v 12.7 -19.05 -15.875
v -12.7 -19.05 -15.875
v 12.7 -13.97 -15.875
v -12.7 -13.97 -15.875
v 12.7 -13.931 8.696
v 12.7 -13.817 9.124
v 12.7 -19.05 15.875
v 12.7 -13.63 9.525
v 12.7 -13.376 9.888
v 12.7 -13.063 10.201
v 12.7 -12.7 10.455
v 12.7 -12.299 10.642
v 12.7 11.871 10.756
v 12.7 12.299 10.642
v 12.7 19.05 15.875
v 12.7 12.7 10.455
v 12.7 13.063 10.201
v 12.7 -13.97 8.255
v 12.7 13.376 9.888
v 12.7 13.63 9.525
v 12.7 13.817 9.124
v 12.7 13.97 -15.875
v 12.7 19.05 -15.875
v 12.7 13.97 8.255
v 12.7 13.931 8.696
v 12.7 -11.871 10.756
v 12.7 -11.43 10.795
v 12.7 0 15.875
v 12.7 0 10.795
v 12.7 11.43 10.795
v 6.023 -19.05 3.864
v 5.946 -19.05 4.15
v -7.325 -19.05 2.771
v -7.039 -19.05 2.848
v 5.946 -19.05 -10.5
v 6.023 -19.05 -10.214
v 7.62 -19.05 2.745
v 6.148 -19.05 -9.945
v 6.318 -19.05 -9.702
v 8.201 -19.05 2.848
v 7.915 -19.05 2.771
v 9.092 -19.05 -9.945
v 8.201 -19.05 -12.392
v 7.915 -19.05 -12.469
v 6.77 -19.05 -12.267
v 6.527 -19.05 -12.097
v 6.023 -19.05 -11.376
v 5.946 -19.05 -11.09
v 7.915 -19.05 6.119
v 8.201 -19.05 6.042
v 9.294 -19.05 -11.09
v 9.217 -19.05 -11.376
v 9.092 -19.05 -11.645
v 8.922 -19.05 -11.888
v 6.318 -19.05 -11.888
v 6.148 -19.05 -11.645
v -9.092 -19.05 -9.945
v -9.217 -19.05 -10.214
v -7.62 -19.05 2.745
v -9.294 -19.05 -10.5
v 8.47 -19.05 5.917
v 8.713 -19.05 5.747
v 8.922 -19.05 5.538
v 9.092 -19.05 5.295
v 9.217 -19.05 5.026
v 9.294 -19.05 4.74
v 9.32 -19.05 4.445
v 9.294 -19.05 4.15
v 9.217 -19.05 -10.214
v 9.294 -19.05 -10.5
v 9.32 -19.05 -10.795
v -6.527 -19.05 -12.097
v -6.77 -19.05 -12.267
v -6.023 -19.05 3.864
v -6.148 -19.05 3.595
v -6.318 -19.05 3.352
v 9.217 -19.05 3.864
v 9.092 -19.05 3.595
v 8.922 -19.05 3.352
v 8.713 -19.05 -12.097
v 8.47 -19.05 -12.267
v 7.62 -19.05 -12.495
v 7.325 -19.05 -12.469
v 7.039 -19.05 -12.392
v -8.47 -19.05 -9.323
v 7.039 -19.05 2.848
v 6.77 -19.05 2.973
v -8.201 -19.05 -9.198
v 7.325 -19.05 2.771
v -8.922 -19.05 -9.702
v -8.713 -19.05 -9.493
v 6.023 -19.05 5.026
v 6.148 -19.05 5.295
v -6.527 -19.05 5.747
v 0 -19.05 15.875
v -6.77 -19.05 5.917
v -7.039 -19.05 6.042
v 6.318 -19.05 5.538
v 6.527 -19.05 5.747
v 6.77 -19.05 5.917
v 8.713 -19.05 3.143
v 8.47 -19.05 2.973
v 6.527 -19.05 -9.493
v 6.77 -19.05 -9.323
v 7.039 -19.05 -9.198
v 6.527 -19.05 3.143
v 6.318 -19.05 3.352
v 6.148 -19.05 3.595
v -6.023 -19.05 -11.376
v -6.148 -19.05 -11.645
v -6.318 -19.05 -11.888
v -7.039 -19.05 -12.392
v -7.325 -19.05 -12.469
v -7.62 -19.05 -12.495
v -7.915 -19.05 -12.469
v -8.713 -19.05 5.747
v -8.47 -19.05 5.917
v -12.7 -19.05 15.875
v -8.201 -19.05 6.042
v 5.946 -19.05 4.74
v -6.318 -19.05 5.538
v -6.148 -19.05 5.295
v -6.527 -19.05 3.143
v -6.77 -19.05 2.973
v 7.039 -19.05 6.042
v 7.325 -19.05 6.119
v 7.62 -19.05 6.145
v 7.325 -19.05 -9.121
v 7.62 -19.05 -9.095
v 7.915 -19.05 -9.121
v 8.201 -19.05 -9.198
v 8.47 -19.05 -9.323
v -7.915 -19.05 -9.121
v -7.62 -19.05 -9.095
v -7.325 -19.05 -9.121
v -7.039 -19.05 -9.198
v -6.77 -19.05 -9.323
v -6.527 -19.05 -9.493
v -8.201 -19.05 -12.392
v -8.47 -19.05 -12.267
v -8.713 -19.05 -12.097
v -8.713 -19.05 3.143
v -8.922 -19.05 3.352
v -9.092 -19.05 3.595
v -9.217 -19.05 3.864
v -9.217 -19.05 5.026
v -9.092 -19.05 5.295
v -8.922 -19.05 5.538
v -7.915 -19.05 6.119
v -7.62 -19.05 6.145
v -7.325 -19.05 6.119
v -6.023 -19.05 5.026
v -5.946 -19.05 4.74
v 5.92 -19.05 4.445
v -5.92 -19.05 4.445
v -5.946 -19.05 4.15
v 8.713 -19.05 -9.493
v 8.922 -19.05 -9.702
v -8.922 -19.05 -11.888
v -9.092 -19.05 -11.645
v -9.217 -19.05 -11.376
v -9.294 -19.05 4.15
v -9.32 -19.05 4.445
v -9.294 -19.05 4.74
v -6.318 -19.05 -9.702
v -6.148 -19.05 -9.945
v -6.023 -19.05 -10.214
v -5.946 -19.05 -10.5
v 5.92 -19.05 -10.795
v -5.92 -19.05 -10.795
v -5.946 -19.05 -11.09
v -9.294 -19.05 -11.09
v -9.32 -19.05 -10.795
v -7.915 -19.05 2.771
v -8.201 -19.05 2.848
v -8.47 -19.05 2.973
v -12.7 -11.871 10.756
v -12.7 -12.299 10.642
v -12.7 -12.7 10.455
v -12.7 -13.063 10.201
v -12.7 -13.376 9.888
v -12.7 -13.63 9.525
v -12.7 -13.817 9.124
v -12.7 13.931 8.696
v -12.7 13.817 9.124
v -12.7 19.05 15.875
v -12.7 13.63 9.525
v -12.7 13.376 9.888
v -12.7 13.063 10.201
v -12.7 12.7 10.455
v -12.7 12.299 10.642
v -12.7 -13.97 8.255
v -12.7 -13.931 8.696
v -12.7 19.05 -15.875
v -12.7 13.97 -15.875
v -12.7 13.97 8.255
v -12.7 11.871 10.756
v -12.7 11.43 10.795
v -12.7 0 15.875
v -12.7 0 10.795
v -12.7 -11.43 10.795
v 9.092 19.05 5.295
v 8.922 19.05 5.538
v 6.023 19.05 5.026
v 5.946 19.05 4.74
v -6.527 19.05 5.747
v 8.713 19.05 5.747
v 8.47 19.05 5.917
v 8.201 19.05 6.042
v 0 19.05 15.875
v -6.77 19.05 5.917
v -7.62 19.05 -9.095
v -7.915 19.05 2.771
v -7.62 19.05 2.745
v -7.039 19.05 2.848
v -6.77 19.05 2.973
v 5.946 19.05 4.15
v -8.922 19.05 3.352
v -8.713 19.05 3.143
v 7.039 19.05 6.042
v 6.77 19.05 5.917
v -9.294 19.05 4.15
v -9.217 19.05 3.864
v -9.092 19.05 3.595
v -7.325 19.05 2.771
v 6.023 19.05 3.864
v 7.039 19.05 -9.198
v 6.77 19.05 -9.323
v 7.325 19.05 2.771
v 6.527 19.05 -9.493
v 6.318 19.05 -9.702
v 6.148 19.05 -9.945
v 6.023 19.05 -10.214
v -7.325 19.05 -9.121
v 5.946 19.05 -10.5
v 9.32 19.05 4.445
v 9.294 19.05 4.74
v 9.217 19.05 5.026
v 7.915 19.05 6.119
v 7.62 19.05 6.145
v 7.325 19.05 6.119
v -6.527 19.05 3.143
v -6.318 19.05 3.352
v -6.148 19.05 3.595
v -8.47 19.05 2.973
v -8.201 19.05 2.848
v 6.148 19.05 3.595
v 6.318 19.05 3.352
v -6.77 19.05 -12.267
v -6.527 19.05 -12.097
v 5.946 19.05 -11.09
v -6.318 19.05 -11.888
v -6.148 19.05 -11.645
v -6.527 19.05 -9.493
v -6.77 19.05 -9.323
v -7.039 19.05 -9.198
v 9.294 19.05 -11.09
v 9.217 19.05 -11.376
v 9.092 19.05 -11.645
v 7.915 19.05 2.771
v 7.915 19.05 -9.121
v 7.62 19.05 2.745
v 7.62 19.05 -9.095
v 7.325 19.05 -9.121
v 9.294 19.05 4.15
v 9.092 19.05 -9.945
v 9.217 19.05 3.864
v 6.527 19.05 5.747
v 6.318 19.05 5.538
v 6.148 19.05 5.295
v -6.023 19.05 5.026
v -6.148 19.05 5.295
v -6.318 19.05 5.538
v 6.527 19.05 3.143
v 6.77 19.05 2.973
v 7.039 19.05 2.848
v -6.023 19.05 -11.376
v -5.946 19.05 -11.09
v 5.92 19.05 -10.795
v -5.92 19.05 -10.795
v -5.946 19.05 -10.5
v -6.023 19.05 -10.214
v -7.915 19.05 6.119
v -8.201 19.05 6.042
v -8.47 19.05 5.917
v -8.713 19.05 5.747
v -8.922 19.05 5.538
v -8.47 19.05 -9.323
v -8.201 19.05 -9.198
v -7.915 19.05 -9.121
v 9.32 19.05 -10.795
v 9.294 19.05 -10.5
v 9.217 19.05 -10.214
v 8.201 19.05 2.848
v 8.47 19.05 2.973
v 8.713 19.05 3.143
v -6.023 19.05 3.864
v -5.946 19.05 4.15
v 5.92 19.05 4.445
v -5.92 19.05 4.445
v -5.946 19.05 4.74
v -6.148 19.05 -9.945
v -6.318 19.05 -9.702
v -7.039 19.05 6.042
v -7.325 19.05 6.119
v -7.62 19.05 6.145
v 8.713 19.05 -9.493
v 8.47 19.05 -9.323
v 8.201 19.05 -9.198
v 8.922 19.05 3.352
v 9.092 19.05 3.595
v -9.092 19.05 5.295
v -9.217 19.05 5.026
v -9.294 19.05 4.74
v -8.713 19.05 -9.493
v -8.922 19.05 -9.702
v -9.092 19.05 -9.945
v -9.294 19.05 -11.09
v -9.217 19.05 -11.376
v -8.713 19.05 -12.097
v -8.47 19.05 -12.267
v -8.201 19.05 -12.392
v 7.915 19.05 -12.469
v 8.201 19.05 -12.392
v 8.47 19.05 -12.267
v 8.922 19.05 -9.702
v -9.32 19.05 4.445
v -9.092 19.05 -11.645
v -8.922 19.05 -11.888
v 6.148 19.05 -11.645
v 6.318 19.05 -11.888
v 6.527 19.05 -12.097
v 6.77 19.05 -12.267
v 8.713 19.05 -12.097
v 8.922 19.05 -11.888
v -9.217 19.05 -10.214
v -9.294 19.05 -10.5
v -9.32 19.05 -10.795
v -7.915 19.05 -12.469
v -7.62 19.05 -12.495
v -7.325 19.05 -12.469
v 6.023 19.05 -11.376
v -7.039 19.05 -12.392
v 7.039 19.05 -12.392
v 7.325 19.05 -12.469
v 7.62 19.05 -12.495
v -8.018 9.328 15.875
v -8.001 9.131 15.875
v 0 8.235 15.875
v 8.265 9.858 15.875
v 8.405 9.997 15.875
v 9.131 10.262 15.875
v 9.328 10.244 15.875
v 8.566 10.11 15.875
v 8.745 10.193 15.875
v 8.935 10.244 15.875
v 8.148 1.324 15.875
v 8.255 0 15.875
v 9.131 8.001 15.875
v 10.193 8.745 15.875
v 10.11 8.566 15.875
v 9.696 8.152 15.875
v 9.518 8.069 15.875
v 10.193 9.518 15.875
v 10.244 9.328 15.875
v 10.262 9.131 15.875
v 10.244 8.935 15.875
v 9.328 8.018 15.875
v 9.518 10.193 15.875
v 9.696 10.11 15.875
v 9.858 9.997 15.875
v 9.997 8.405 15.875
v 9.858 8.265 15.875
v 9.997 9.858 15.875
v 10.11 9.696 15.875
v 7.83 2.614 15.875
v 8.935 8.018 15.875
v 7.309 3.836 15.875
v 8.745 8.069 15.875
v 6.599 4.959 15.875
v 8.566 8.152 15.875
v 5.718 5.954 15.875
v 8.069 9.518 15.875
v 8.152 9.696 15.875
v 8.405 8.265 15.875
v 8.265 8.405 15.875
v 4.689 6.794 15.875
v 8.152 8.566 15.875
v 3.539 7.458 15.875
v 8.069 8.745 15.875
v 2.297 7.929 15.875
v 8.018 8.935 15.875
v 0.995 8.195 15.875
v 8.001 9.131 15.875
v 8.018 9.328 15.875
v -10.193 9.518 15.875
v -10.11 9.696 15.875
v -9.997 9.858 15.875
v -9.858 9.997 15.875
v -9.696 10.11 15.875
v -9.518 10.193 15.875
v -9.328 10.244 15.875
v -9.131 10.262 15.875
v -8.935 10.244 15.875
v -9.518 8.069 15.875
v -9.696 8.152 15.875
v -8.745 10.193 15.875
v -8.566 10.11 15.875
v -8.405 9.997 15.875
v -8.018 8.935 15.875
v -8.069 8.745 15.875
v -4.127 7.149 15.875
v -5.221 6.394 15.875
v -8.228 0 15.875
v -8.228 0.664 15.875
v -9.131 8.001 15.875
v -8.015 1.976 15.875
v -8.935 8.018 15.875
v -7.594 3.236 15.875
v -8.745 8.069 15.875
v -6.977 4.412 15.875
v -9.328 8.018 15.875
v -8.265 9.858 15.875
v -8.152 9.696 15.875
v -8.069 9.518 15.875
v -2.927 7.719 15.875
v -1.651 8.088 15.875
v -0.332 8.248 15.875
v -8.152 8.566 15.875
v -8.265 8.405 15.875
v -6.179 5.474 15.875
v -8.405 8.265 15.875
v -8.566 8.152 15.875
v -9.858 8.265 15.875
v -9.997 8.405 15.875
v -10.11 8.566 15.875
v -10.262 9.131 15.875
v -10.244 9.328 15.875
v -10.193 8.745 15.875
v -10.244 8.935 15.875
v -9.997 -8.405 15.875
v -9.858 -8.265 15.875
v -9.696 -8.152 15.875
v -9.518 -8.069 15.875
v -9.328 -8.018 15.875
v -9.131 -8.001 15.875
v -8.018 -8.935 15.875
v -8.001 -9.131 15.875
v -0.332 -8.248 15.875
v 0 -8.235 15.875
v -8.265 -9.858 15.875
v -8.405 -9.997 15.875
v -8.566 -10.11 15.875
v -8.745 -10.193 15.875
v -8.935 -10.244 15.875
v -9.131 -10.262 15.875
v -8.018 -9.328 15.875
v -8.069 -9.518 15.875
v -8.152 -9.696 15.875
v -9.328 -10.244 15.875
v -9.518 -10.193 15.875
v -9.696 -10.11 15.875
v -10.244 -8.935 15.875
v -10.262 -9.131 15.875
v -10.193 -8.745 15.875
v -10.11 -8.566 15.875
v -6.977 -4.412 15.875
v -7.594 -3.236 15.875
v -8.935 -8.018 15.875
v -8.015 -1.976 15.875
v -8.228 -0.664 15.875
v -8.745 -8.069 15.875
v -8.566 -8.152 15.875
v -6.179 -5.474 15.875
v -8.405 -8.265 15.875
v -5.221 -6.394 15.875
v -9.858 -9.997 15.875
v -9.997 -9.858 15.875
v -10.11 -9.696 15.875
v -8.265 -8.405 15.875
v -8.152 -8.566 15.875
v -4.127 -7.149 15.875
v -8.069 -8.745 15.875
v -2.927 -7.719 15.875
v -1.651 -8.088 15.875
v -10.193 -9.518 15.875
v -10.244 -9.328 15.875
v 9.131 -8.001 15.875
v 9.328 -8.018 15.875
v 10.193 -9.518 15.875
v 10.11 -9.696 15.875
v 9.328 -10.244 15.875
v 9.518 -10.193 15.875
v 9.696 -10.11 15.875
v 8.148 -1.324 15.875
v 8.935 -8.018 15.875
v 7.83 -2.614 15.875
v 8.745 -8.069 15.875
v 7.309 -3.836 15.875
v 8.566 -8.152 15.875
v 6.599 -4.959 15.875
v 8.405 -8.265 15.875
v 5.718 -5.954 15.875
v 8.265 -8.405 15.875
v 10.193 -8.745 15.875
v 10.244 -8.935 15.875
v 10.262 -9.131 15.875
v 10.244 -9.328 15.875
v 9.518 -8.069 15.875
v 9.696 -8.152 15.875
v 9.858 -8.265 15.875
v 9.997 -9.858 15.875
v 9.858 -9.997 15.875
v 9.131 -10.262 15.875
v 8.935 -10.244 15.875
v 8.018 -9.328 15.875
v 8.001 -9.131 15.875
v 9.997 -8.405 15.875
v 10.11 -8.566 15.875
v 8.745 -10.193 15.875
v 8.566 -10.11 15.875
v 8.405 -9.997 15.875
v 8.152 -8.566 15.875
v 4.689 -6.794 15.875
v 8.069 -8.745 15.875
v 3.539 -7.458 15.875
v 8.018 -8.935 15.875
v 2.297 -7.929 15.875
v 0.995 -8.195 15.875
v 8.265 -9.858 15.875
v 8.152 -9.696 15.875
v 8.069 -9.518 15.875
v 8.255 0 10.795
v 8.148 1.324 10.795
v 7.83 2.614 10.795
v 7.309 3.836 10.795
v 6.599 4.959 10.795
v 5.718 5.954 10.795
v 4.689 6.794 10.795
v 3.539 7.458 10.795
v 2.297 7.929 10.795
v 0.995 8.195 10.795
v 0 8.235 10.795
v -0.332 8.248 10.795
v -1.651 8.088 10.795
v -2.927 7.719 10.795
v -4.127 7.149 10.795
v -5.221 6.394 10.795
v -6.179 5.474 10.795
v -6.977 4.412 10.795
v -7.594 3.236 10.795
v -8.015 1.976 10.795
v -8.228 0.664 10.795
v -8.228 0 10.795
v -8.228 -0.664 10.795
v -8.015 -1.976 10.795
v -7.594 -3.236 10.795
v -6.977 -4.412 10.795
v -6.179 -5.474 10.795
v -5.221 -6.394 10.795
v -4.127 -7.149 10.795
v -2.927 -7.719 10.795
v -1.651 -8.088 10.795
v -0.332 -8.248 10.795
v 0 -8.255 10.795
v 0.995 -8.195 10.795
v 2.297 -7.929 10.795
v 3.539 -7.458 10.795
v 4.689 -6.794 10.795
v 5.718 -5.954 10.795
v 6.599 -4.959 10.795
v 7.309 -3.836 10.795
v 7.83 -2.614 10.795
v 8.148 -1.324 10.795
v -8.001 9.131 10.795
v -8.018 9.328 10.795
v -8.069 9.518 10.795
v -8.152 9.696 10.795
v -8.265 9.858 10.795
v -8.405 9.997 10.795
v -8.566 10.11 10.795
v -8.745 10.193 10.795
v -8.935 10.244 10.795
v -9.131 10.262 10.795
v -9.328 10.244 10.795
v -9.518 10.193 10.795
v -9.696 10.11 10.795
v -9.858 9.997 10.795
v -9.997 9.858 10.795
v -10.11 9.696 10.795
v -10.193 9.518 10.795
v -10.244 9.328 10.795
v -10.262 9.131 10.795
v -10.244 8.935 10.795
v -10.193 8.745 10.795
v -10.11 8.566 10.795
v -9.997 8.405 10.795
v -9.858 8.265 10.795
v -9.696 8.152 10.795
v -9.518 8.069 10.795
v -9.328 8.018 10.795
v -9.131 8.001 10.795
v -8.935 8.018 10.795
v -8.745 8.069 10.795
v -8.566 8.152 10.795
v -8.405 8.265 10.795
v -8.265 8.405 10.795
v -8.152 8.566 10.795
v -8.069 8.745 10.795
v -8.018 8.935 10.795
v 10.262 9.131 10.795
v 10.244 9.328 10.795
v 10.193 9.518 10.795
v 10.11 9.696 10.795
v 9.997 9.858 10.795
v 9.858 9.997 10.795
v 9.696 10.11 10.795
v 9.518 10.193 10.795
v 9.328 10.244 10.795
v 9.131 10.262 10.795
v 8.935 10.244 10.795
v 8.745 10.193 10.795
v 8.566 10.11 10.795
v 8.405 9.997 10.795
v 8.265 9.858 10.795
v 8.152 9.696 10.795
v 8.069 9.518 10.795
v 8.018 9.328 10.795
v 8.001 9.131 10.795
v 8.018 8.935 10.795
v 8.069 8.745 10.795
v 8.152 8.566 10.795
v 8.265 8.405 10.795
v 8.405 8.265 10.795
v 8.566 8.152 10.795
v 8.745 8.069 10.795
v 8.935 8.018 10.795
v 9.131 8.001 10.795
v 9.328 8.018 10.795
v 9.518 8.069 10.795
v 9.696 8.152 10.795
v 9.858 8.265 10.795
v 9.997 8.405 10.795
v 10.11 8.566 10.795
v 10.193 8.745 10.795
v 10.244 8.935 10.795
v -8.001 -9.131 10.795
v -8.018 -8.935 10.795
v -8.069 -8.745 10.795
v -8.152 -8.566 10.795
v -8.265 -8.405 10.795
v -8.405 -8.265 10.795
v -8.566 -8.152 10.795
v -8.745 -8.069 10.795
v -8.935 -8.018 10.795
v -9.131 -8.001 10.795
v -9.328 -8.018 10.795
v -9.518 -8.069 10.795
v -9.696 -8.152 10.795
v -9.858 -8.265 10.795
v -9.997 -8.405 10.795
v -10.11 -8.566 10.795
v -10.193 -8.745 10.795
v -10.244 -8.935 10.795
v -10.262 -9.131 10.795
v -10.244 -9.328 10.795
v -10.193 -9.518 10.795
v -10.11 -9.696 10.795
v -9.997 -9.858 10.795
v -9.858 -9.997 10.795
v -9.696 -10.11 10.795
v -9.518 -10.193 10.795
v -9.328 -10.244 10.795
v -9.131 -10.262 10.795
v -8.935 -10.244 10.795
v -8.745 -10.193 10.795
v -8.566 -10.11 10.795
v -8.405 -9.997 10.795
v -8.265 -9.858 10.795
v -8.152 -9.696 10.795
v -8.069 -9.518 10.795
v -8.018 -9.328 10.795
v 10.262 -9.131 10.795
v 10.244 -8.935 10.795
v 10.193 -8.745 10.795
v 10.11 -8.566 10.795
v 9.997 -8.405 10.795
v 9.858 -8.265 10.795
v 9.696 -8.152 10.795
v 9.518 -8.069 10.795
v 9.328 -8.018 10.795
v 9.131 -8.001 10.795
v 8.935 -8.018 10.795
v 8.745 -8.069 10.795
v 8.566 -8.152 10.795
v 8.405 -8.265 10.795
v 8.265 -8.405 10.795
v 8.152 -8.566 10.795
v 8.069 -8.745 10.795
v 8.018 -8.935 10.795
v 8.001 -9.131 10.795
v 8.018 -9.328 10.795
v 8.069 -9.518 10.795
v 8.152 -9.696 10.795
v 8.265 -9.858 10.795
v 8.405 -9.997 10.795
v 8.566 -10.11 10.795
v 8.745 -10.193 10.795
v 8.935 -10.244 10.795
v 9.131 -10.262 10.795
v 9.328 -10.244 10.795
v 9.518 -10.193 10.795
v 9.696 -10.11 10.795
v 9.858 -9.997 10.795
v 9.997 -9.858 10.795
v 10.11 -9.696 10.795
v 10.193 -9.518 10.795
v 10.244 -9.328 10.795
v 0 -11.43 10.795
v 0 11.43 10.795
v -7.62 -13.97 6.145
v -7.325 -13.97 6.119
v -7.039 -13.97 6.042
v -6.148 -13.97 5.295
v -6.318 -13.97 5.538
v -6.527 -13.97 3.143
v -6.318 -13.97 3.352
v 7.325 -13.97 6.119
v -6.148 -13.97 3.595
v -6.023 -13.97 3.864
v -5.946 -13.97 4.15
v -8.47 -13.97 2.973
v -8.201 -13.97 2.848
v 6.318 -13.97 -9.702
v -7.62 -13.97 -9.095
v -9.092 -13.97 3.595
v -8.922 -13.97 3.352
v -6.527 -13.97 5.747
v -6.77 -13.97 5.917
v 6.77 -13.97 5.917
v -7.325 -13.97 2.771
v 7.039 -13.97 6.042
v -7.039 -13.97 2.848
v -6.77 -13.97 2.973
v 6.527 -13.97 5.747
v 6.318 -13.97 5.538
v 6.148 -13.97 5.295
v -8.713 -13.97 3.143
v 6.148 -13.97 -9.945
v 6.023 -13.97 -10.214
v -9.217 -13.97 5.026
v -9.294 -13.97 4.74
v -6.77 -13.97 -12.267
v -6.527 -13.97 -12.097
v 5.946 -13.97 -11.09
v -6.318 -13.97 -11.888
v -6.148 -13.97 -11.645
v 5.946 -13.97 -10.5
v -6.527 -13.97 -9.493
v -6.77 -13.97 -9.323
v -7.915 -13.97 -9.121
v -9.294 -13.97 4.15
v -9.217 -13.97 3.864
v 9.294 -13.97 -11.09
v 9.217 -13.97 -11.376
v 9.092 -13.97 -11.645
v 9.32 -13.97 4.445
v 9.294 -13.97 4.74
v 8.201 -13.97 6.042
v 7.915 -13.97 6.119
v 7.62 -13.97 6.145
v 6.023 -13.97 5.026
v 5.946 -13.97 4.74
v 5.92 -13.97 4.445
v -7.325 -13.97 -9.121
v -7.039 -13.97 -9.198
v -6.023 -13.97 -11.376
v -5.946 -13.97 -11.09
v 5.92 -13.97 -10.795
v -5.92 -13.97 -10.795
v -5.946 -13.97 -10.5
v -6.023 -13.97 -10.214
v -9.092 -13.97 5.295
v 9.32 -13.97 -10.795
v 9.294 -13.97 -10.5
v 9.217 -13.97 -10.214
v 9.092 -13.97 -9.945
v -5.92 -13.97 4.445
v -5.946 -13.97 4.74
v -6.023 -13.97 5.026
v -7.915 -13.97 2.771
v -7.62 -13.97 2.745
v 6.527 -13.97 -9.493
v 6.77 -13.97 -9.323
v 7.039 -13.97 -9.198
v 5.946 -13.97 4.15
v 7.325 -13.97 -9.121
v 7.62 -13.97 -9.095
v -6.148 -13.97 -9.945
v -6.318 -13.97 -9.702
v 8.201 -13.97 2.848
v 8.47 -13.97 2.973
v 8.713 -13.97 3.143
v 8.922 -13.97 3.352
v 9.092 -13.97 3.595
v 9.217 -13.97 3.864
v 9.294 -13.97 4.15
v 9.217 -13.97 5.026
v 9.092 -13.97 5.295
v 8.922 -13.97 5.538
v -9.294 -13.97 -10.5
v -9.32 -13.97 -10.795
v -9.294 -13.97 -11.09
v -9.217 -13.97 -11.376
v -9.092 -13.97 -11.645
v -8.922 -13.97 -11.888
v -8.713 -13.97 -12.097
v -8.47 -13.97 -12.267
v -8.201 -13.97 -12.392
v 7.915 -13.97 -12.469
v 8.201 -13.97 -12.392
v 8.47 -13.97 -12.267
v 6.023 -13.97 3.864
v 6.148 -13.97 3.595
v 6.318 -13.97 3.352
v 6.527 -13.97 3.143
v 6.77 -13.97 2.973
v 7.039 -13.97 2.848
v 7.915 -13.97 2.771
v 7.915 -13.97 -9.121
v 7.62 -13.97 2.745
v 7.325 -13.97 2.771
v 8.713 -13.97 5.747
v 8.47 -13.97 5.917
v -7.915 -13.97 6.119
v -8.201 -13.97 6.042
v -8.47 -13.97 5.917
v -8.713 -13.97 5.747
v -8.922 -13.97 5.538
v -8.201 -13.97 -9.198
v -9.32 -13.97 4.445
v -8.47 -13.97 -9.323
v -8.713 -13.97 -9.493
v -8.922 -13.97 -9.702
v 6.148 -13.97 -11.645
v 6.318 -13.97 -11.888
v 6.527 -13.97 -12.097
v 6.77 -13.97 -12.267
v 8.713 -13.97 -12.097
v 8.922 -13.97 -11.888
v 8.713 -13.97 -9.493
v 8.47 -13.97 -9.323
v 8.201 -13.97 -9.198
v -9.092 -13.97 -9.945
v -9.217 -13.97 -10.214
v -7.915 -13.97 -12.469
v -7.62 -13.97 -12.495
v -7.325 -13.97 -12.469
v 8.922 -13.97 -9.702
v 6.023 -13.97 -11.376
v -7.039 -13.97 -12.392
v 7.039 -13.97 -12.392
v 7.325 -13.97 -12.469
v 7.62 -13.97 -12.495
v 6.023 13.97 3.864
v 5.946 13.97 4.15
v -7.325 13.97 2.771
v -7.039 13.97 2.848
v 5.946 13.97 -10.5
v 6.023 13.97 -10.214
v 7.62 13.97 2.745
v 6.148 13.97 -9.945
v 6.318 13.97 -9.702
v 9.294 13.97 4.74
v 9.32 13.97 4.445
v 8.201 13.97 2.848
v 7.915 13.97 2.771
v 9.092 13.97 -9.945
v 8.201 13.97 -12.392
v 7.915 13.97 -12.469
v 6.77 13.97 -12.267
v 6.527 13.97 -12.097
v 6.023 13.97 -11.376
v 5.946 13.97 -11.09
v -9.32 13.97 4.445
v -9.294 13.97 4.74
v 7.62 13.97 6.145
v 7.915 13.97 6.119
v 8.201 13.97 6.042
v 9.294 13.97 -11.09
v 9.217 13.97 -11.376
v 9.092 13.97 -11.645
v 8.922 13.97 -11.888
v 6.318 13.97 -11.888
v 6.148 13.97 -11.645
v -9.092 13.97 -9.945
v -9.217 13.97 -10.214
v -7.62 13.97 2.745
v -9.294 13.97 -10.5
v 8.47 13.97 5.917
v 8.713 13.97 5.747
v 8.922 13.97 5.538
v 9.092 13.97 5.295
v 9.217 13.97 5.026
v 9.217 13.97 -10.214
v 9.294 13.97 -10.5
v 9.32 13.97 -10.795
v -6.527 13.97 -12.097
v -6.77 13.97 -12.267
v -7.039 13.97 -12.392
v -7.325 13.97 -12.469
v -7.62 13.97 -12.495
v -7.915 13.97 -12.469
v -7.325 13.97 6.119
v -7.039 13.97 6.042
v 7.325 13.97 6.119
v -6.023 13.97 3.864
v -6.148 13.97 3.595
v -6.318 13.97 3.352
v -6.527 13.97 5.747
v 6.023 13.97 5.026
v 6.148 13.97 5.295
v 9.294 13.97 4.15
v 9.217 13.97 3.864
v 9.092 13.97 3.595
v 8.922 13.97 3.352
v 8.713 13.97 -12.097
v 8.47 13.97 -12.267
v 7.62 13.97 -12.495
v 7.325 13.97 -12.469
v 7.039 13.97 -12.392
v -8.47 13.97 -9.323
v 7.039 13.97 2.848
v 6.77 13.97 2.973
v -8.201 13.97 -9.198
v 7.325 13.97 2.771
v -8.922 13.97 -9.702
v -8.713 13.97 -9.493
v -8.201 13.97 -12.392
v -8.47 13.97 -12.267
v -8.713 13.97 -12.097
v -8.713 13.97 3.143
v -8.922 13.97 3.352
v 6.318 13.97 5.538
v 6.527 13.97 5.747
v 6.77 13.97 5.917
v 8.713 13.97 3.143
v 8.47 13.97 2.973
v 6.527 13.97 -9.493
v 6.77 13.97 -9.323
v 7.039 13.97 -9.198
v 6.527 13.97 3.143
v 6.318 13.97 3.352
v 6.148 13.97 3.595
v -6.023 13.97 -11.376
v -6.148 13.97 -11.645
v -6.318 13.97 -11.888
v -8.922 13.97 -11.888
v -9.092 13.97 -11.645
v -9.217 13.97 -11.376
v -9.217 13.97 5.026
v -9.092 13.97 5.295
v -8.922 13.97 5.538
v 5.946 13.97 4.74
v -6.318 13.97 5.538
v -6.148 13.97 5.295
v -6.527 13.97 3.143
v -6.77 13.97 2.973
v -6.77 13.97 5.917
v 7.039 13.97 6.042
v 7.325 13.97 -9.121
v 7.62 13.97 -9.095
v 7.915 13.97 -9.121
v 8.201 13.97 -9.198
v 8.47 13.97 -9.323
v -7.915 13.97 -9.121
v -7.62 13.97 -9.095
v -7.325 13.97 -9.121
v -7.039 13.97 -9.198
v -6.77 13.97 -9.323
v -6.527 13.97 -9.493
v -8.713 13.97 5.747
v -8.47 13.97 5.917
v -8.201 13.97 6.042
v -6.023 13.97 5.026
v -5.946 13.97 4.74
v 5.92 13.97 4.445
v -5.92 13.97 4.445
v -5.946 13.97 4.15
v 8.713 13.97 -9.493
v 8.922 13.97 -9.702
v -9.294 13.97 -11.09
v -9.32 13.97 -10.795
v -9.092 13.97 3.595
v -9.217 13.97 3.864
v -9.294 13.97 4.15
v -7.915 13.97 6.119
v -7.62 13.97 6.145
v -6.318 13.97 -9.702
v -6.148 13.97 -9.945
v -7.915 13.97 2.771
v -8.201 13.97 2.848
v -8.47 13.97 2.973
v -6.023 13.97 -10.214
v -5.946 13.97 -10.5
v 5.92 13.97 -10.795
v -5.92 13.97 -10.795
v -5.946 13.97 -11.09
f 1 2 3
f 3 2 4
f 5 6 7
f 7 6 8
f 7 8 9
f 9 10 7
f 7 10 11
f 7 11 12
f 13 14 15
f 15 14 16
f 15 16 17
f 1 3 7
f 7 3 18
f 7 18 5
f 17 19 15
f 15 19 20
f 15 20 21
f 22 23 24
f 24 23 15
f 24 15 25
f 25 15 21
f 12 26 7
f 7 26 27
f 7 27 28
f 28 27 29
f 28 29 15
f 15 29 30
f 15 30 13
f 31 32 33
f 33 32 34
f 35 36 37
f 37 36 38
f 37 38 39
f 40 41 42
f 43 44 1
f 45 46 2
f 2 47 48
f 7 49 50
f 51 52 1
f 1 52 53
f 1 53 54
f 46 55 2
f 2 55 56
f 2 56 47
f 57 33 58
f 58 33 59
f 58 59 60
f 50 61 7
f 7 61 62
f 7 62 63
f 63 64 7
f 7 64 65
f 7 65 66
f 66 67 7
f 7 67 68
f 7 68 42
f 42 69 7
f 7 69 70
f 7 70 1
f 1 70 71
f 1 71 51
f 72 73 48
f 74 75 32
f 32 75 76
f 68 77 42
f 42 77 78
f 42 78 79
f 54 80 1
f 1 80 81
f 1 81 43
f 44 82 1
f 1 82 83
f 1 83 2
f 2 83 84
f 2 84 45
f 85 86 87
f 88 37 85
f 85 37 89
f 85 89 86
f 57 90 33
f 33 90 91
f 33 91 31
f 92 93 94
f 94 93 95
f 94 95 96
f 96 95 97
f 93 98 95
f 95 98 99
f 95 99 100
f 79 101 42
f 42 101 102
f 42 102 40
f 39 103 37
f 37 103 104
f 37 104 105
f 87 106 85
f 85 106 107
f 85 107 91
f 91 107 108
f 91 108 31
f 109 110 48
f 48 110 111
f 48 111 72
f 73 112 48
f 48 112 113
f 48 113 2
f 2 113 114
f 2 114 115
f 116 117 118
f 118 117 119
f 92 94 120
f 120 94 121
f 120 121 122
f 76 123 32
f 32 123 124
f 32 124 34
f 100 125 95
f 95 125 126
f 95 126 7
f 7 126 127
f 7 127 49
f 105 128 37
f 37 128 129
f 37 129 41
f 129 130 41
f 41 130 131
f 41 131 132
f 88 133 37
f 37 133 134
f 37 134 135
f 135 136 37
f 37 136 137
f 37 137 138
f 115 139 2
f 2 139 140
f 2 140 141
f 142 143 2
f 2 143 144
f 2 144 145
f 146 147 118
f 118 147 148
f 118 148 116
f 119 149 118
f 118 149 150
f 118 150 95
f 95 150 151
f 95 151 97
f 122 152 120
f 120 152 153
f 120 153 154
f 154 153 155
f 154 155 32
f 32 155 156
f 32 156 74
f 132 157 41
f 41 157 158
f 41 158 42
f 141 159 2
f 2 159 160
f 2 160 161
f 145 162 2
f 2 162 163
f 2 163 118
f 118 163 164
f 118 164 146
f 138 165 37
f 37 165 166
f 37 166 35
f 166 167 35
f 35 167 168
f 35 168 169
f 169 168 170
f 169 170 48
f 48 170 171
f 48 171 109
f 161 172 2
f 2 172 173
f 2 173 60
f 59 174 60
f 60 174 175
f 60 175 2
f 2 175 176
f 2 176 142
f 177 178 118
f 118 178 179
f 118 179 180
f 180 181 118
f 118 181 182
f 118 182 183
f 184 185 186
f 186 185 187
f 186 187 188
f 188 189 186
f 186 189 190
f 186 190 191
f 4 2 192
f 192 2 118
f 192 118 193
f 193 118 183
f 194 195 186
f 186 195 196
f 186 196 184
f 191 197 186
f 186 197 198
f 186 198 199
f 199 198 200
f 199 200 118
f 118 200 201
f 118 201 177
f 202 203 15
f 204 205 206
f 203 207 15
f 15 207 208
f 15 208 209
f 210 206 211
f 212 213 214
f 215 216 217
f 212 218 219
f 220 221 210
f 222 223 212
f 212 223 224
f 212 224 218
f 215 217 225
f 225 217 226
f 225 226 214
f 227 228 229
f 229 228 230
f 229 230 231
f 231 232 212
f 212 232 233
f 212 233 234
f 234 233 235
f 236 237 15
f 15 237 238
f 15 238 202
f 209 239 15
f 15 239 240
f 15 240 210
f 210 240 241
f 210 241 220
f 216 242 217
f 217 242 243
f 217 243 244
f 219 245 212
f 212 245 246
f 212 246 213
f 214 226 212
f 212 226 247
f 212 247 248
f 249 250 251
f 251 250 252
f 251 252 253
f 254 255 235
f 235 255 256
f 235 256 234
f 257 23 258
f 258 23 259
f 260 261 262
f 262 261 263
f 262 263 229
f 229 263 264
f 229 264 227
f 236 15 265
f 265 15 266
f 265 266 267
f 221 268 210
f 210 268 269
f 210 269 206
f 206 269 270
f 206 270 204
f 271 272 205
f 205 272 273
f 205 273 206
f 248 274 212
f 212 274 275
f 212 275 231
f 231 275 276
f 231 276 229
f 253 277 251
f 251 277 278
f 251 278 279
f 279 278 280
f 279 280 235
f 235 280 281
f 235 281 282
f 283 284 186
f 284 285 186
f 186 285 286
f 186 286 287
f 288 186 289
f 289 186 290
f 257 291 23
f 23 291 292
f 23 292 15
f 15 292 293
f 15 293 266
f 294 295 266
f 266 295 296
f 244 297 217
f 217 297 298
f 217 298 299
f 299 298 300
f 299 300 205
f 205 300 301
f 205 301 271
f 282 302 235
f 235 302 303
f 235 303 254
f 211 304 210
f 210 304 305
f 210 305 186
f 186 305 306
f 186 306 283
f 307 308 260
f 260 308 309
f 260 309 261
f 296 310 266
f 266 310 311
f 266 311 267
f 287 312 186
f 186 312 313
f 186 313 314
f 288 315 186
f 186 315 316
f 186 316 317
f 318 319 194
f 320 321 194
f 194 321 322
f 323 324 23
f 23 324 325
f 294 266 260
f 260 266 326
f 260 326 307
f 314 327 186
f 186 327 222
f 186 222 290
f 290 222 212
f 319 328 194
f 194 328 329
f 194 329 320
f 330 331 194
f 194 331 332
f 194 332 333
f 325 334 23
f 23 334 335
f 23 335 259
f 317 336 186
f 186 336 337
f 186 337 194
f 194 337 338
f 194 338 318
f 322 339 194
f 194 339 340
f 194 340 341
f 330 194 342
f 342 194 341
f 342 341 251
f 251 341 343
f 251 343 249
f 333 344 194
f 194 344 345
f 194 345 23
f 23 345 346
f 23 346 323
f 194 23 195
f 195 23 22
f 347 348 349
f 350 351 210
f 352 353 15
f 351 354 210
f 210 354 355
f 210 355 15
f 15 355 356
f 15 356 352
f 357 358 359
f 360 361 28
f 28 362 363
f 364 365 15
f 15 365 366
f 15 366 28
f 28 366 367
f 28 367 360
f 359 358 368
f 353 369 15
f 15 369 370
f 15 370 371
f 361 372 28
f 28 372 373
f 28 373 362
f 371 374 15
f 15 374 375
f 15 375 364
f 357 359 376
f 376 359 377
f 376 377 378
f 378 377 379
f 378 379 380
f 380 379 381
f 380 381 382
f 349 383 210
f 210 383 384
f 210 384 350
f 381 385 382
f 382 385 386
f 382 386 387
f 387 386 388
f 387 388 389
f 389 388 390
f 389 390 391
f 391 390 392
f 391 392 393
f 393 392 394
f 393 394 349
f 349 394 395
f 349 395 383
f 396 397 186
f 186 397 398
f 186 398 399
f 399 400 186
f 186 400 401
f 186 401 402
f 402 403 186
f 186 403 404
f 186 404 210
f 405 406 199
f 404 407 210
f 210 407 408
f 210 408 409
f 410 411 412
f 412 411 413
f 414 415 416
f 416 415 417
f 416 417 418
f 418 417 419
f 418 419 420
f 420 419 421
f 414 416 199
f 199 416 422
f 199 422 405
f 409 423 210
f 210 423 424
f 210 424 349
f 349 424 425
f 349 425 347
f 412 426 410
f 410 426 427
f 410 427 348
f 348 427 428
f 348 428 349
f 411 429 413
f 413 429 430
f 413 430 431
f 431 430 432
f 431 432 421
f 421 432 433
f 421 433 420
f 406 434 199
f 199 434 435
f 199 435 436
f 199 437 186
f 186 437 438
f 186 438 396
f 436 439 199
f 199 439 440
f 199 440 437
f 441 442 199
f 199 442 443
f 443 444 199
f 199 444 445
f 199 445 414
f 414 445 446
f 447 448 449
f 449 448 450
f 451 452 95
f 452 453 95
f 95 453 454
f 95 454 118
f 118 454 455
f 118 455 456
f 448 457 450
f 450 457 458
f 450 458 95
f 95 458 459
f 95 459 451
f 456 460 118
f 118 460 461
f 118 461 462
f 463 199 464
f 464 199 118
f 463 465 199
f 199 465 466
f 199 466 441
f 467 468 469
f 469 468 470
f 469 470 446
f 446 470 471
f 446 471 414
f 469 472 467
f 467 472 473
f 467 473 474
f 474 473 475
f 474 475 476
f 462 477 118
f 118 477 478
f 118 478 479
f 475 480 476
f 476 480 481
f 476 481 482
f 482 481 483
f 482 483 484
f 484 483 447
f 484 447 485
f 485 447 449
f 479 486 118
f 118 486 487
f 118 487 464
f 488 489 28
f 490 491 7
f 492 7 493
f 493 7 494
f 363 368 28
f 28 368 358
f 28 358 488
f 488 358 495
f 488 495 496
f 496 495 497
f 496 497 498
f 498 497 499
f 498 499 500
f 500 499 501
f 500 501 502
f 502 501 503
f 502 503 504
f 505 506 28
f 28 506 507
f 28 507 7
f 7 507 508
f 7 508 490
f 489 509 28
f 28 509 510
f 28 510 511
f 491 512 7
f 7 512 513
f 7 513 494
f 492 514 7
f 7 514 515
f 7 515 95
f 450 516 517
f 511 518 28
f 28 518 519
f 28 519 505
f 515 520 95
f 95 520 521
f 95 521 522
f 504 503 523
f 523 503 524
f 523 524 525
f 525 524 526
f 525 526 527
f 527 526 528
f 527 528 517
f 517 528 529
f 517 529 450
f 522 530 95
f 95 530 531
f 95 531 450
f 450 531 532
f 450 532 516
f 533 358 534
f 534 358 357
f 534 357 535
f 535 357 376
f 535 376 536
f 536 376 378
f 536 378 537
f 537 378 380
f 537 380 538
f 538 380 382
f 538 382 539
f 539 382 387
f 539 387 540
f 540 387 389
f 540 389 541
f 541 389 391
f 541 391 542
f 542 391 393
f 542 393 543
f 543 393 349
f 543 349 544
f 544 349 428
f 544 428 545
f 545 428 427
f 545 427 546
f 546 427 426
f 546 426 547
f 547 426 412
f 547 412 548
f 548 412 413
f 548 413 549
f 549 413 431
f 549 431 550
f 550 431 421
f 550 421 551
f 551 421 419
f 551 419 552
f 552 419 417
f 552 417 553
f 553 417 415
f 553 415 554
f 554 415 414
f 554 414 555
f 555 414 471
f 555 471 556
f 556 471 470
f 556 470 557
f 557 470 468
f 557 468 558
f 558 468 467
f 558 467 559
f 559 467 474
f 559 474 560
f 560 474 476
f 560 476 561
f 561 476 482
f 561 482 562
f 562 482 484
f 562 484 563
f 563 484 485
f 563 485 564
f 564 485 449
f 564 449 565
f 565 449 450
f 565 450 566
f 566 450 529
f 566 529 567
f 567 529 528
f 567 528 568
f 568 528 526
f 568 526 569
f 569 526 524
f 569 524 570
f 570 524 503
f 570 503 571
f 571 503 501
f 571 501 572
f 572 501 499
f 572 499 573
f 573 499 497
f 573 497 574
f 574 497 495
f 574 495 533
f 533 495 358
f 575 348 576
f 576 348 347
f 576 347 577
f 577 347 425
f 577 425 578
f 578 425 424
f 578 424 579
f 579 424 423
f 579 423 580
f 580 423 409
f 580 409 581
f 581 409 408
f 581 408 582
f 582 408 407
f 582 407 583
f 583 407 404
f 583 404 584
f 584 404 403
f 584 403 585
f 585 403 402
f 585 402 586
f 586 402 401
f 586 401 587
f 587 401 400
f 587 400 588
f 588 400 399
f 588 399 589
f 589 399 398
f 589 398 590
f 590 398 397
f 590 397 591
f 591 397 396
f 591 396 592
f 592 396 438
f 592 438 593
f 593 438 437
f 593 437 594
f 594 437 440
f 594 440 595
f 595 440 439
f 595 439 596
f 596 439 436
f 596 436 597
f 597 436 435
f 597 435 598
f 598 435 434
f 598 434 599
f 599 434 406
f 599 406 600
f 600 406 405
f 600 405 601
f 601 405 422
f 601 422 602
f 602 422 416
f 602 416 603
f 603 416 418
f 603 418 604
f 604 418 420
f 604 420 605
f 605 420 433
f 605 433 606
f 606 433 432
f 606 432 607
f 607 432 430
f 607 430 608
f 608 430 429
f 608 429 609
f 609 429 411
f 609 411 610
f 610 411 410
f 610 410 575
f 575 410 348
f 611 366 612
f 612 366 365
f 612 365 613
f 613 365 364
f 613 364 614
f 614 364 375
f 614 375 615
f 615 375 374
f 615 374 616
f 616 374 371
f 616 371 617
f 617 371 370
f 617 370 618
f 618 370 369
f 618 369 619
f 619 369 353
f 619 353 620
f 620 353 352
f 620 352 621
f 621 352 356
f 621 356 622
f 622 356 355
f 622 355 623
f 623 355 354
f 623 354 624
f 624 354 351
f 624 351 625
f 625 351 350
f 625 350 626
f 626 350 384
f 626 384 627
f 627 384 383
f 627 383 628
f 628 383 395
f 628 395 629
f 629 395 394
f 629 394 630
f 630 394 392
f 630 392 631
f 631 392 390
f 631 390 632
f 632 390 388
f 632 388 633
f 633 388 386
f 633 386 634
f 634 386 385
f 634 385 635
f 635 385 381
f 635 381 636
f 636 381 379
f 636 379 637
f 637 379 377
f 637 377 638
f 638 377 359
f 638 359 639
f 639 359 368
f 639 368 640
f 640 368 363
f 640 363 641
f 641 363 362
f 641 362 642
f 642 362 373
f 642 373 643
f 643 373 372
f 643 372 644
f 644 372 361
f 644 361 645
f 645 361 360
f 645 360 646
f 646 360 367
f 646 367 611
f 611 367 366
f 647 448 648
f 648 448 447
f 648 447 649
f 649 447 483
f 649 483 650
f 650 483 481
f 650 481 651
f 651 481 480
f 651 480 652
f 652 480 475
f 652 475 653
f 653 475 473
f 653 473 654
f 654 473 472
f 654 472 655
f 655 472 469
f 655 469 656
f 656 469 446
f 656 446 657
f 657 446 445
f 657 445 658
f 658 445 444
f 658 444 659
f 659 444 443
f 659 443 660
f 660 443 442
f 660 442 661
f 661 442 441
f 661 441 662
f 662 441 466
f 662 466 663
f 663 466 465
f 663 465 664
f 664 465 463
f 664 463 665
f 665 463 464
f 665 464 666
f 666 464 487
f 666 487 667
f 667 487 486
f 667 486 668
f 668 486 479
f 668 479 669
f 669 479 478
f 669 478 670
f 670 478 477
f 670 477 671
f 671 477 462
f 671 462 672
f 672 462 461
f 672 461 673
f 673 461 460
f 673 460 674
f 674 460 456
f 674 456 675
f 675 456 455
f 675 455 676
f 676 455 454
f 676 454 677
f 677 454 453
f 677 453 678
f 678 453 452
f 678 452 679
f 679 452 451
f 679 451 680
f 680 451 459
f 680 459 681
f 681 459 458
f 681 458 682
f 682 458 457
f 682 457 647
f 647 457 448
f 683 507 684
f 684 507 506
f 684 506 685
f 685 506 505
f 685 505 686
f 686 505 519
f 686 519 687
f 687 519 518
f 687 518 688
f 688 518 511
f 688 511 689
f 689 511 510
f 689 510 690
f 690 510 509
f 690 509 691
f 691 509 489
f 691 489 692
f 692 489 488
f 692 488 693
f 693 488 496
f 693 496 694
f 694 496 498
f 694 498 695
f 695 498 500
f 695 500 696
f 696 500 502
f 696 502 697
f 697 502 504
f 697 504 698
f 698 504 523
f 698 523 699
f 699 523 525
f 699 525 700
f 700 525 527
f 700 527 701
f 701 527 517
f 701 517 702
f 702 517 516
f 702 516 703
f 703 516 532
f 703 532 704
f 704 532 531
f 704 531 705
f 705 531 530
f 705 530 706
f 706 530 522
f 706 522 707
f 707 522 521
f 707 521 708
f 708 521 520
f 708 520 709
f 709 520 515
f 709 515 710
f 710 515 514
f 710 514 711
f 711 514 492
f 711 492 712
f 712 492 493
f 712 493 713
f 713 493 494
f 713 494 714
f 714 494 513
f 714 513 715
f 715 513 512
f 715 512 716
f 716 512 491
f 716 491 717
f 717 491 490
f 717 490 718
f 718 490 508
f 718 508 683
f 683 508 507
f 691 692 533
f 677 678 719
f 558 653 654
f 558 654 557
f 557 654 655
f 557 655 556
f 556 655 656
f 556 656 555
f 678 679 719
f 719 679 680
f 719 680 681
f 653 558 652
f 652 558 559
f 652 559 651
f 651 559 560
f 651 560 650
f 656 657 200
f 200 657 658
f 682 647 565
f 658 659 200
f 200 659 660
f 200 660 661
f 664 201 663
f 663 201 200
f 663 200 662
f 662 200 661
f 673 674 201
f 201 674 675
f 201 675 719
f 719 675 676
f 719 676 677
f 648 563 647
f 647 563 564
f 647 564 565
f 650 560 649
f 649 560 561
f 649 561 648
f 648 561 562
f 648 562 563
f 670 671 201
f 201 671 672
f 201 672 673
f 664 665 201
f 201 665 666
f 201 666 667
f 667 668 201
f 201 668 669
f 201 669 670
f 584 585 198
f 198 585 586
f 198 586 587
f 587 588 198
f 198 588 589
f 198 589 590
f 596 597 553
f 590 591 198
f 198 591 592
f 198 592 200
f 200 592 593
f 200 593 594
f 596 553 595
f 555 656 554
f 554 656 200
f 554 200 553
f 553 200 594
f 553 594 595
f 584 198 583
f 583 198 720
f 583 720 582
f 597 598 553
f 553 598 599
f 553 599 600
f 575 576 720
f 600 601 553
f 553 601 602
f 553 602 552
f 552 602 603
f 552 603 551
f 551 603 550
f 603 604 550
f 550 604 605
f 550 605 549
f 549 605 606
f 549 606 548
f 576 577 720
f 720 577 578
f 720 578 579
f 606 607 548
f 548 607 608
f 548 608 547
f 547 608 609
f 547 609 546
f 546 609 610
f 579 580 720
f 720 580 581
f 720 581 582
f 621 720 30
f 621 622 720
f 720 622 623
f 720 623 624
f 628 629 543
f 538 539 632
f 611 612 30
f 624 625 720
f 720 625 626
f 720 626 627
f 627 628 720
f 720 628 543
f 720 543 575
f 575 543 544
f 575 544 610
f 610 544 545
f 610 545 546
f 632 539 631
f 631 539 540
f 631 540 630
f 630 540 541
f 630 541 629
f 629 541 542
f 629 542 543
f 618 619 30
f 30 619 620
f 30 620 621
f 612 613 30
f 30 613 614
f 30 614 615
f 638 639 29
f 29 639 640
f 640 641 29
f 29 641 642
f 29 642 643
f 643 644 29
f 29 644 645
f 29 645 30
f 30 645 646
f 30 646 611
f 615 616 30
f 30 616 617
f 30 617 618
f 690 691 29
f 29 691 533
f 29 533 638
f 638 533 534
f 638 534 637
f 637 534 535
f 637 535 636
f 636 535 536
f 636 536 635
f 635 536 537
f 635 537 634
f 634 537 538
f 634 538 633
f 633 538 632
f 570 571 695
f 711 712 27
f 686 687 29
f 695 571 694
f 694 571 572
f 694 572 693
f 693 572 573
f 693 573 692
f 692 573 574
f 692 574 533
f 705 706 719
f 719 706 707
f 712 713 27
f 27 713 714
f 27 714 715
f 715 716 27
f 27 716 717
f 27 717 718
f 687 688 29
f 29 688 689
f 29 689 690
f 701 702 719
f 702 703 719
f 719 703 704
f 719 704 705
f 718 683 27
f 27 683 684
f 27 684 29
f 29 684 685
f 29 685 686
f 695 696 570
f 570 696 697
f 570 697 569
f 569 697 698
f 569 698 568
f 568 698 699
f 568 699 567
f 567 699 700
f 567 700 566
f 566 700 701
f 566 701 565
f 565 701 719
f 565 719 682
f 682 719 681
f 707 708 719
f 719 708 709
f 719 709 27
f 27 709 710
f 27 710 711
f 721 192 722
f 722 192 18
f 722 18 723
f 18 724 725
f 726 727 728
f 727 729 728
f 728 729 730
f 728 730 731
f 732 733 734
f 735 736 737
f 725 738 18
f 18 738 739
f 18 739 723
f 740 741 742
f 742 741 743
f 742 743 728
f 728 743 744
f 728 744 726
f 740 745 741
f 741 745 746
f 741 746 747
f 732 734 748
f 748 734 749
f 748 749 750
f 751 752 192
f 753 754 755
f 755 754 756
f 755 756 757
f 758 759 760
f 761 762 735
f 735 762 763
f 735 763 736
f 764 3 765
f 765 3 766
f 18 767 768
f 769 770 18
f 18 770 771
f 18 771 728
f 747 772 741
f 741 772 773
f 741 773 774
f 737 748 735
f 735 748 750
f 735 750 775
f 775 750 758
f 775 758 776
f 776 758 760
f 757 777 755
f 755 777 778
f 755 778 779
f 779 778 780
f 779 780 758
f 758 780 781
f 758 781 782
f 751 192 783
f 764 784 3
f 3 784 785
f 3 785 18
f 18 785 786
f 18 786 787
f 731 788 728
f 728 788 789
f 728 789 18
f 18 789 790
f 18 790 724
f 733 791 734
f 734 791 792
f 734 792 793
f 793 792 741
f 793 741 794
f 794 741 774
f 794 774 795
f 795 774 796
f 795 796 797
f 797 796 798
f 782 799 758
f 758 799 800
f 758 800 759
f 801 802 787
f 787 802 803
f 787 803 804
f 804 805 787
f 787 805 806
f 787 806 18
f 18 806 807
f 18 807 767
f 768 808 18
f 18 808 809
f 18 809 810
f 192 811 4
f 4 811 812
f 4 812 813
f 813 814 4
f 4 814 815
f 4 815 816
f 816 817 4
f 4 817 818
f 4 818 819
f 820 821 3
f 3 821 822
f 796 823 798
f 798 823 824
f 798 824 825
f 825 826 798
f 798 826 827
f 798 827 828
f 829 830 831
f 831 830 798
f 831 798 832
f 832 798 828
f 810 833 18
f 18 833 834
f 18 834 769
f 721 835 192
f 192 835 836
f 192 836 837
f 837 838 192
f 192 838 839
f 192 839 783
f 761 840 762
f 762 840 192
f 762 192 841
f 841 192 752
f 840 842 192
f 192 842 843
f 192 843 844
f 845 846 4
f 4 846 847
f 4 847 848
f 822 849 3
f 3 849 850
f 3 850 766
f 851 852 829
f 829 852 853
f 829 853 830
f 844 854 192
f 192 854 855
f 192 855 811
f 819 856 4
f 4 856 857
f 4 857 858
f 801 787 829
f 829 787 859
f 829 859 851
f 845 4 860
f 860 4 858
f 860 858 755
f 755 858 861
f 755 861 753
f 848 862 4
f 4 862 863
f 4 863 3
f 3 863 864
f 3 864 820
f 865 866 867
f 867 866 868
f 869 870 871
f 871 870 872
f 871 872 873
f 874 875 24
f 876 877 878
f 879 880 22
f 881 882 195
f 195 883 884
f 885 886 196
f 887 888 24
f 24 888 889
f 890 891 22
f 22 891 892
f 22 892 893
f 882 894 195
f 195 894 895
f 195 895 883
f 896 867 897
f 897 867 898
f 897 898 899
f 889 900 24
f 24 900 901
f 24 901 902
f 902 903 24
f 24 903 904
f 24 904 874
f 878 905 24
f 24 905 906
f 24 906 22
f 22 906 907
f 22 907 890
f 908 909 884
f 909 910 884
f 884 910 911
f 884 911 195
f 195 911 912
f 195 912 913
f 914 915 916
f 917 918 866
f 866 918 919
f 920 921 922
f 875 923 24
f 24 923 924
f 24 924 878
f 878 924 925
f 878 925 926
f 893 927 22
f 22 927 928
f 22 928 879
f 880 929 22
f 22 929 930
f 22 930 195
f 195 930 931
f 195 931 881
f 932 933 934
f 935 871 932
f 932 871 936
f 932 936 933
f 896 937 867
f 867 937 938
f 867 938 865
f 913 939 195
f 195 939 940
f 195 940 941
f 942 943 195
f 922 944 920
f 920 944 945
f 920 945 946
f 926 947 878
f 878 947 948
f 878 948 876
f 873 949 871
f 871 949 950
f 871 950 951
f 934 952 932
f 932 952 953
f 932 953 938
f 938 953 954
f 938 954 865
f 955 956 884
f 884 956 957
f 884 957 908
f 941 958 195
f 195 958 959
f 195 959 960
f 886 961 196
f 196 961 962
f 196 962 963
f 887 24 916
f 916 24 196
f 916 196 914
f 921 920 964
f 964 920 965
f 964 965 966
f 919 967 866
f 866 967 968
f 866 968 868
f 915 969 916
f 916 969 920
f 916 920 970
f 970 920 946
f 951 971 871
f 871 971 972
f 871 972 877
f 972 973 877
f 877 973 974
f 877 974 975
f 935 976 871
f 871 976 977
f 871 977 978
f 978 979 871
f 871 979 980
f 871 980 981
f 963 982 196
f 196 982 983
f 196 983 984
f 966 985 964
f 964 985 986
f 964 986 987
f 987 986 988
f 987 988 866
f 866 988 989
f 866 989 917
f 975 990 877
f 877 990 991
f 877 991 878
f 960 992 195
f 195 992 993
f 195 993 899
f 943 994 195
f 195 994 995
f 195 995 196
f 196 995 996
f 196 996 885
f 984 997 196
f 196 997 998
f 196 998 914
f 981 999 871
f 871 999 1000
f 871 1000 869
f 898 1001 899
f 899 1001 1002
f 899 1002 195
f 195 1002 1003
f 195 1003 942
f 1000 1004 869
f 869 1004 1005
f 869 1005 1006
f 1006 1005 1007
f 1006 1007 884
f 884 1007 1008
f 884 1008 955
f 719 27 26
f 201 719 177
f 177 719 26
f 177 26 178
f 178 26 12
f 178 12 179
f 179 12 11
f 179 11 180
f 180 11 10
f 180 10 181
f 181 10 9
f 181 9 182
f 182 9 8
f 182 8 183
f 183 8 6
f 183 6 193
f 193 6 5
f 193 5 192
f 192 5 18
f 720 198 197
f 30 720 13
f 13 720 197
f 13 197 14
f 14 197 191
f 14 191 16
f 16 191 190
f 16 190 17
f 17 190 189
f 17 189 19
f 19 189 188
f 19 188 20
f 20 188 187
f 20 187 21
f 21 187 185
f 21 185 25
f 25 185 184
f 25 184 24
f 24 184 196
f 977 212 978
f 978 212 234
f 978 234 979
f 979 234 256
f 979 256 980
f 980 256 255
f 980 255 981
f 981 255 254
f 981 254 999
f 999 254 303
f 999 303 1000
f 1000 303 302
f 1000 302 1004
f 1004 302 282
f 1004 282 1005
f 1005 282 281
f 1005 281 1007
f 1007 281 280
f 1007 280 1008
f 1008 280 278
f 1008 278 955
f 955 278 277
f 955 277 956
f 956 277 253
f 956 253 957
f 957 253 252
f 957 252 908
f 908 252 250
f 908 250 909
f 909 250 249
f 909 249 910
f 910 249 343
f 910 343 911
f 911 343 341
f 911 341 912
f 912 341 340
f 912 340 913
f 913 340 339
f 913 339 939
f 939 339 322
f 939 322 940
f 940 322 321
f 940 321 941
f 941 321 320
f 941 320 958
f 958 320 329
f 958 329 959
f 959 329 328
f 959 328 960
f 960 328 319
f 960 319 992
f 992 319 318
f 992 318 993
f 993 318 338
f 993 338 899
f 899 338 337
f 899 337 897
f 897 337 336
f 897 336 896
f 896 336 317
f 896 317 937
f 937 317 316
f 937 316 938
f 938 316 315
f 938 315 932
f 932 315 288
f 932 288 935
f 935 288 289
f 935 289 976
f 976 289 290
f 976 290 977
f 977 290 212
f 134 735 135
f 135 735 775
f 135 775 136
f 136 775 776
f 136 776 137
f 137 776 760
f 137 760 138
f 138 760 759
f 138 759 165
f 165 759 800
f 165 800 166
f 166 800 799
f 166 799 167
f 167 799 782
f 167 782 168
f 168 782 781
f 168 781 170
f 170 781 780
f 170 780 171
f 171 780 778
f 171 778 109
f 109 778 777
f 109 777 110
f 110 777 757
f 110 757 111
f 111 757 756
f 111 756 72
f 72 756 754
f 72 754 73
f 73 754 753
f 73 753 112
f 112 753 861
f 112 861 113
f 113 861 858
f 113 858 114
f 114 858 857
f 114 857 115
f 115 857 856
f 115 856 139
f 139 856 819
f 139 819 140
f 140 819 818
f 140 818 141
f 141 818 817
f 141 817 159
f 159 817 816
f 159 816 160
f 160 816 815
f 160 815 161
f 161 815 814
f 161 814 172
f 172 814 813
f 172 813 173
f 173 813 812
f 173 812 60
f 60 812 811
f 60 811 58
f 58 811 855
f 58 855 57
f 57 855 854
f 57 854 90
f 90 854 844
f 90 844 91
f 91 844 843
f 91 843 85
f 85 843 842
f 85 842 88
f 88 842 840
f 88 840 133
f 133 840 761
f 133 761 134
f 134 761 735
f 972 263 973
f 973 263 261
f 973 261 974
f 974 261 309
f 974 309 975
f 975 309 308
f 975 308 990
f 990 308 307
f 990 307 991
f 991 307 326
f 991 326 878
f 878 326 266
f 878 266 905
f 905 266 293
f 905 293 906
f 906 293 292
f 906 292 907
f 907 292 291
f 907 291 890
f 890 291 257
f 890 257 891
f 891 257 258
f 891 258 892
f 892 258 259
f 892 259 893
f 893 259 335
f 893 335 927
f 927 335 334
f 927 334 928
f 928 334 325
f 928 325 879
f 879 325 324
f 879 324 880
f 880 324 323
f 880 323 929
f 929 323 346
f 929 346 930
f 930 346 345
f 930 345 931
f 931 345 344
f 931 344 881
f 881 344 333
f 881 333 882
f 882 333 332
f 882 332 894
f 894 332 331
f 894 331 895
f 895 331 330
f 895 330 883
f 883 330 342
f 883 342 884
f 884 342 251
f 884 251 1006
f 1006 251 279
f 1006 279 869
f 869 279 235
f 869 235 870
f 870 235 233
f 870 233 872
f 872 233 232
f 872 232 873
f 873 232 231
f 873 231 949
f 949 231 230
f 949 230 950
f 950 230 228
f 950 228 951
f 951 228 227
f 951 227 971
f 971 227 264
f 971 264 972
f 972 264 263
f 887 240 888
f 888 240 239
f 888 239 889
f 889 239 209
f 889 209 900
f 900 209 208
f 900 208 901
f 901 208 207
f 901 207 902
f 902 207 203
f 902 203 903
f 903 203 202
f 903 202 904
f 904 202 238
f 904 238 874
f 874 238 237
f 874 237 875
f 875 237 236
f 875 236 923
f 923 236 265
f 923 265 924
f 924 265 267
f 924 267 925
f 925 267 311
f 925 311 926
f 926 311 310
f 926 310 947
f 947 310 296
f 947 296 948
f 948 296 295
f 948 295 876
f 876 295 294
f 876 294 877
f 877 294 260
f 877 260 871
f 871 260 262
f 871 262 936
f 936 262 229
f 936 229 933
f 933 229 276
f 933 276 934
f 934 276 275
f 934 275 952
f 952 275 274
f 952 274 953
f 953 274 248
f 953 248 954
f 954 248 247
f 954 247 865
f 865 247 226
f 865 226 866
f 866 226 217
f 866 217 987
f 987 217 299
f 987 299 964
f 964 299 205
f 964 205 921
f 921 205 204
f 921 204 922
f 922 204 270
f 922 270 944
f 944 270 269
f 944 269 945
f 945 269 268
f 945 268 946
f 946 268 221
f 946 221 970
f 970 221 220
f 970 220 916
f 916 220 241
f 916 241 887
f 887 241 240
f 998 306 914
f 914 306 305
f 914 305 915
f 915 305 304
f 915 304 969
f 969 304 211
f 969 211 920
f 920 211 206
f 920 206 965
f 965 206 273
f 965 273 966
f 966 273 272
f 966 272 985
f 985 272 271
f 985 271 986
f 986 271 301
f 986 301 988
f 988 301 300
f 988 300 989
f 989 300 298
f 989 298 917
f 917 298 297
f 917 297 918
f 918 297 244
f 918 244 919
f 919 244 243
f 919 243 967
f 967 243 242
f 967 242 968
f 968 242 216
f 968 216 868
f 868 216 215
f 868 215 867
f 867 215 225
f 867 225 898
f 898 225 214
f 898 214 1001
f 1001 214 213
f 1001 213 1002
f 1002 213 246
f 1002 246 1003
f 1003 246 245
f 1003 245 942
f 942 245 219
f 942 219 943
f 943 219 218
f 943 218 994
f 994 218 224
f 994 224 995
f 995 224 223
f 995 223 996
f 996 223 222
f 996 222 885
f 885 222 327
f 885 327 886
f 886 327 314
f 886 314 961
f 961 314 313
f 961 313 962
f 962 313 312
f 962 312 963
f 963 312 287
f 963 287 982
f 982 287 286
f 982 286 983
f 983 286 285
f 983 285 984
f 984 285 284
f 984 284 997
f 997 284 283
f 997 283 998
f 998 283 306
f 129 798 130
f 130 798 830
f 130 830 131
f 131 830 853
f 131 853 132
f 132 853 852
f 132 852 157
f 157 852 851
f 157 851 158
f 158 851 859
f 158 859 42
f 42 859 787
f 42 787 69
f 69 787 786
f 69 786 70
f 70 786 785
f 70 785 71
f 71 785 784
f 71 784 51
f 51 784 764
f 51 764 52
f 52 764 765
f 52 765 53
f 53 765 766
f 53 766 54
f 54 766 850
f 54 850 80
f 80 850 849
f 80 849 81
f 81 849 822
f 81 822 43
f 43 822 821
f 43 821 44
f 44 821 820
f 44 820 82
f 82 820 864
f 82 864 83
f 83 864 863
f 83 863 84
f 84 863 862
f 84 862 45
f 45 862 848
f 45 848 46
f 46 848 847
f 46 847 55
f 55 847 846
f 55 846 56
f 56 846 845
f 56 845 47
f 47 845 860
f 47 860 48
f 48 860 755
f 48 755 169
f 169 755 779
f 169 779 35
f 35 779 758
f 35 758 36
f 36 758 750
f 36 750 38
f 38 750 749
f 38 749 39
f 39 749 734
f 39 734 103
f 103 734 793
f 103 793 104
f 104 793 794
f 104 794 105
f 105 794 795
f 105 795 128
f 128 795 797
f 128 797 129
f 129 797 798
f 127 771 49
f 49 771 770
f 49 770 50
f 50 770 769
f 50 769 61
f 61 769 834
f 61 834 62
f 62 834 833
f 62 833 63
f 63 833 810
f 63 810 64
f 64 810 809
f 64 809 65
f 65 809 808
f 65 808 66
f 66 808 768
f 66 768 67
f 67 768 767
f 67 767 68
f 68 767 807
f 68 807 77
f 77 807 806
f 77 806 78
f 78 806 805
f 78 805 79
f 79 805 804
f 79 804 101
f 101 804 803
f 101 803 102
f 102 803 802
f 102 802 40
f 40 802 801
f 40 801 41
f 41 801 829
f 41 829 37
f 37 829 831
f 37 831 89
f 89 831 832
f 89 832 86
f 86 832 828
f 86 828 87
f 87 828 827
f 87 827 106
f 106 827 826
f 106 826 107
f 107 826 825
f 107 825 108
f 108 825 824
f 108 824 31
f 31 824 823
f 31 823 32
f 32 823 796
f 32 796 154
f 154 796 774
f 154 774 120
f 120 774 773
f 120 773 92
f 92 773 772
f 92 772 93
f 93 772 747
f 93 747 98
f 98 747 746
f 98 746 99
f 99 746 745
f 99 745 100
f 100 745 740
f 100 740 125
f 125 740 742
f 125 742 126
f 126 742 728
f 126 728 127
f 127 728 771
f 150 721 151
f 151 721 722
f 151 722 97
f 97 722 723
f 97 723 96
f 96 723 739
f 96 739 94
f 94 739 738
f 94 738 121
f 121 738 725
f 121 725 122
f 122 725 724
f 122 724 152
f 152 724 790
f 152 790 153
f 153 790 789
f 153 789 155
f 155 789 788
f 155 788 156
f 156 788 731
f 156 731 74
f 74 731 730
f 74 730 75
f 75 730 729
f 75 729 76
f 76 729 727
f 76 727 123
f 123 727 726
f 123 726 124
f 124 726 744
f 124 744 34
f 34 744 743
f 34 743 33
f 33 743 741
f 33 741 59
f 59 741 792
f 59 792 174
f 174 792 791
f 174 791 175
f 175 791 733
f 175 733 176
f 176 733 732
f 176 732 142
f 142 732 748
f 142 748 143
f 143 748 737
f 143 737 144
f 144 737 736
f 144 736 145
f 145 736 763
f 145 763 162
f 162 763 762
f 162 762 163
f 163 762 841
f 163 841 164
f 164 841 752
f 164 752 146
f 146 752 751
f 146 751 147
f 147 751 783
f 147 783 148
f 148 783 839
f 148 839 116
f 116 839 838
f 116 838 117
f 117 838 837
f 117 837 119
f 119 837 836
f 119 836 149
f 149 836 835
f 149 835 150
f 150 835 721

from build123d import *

# Parameters (mm, degrees)
SKETCH1_W               = 25.4
SKETCH1_H               = 38.1
SKETCH1_R               = 8.255
SKETCH1_R_2             = 1.1303
BOSS_EXTRUDE1_DEPTH     = 15.875
CUT_EXTRUDE1_REACH      = 37.498
SKETCH3_W               = 26.67
SKETCH3_H               = 27.94
FILLET1_R               = 2.54
SKETCH5_R               = 1.7
FRAME_MOUNT_HOLES_DEPTH = 44.184668865


with BuildPart() as part:
    # Sketch1 → Boss-Extrude1 (new, symmetric)
    with BuildSketch(Plane.XY):
        Rectangle(SKETCH1_W, SKETCH1_H)
        Circle(SKETCH1_R, mode=Mode.SUBTRACT)
        with Locations((-9.1313, 9.1313)):
            Circle(SKETCH1_R_2, mode=Mode.SUBTRACT)
        with Locations((9.1313, 9.1313)):
            Circle(SKETCH1_R_2, mode=Mode.SUBTRACT)
        with Locations((-9.1313, -9.1313)):
            Circle(SKETCH1_R_2, mode=Mode.SUBTRACT)
        with Locations((9.1313, -9.1313)):
            Circle(SKETCH1_R_2, mode=Mode.SUBTRACT)
    extrude(amount=BOSS_EXTRUDE1_DEPTH, both=True)

    # Sketch3 → Cut-Extrude1 (cut, up to next)
    with BuildSketch(Plane(origin=(12.7, 0, 0), x_dir=(0, 0, -1), z_dir=(1, 0, 0)), mode=Mode.PRIVATE) as cut_extrude1_sk1:
        with Locations((2.54, 0)):
            Rectangle(SKETCH3_W, SKETCH3_H)
    cut_extrude1_tool1 = extrude(cut_extrude1_sk1.sketch, amount=-CUT_EXTRUDE1_REACH, mode=Mode.PRIVATE) & part.part
    add(cut_extrude1_tool1.solids().sort_by_distance((12.7, 0, -2.54))[0], mode=Mode.SUBTRACT)

    # Fillet1
    fillet1_edges = [part.edges().sort_by_distance(p)[0] for p in [
        (0, -13.97, 10.795),
        (0, 13.97, 10.795),
    ]]
    fillet(fillet1_edges, radius=FILLET1_R)

    # Sketch5 → Frame Mount Holes (cut, through all)
    with BuildSketch(Plane(origin=(0, 19.05, 0), x_dir=(1, 0, 0), z_dir=(0, 1, 0))):
        with Locations(Location((-7.62, 10.795, 0), (0, 0, 270))):
            Circle(SKETCH5_R)
        with Locations(Location((-7.62, -4.445, 0), (0, 0, 270))):
            Circle(SKETCH5_R)
        with Locations(Location((7.62, -4.445, 0), (0, 0, 270))):
            Circle(SKETCH5_R)
        with Locations(Location((7.62, 10.795, 0), (0, 0, 270))):
            Circle(SKETCH5_R)
    extrude(amount=-FRAME_MOUNT_HOLES_DEPTH, mode=Mode.SUBTRACT)


solid = part.part
